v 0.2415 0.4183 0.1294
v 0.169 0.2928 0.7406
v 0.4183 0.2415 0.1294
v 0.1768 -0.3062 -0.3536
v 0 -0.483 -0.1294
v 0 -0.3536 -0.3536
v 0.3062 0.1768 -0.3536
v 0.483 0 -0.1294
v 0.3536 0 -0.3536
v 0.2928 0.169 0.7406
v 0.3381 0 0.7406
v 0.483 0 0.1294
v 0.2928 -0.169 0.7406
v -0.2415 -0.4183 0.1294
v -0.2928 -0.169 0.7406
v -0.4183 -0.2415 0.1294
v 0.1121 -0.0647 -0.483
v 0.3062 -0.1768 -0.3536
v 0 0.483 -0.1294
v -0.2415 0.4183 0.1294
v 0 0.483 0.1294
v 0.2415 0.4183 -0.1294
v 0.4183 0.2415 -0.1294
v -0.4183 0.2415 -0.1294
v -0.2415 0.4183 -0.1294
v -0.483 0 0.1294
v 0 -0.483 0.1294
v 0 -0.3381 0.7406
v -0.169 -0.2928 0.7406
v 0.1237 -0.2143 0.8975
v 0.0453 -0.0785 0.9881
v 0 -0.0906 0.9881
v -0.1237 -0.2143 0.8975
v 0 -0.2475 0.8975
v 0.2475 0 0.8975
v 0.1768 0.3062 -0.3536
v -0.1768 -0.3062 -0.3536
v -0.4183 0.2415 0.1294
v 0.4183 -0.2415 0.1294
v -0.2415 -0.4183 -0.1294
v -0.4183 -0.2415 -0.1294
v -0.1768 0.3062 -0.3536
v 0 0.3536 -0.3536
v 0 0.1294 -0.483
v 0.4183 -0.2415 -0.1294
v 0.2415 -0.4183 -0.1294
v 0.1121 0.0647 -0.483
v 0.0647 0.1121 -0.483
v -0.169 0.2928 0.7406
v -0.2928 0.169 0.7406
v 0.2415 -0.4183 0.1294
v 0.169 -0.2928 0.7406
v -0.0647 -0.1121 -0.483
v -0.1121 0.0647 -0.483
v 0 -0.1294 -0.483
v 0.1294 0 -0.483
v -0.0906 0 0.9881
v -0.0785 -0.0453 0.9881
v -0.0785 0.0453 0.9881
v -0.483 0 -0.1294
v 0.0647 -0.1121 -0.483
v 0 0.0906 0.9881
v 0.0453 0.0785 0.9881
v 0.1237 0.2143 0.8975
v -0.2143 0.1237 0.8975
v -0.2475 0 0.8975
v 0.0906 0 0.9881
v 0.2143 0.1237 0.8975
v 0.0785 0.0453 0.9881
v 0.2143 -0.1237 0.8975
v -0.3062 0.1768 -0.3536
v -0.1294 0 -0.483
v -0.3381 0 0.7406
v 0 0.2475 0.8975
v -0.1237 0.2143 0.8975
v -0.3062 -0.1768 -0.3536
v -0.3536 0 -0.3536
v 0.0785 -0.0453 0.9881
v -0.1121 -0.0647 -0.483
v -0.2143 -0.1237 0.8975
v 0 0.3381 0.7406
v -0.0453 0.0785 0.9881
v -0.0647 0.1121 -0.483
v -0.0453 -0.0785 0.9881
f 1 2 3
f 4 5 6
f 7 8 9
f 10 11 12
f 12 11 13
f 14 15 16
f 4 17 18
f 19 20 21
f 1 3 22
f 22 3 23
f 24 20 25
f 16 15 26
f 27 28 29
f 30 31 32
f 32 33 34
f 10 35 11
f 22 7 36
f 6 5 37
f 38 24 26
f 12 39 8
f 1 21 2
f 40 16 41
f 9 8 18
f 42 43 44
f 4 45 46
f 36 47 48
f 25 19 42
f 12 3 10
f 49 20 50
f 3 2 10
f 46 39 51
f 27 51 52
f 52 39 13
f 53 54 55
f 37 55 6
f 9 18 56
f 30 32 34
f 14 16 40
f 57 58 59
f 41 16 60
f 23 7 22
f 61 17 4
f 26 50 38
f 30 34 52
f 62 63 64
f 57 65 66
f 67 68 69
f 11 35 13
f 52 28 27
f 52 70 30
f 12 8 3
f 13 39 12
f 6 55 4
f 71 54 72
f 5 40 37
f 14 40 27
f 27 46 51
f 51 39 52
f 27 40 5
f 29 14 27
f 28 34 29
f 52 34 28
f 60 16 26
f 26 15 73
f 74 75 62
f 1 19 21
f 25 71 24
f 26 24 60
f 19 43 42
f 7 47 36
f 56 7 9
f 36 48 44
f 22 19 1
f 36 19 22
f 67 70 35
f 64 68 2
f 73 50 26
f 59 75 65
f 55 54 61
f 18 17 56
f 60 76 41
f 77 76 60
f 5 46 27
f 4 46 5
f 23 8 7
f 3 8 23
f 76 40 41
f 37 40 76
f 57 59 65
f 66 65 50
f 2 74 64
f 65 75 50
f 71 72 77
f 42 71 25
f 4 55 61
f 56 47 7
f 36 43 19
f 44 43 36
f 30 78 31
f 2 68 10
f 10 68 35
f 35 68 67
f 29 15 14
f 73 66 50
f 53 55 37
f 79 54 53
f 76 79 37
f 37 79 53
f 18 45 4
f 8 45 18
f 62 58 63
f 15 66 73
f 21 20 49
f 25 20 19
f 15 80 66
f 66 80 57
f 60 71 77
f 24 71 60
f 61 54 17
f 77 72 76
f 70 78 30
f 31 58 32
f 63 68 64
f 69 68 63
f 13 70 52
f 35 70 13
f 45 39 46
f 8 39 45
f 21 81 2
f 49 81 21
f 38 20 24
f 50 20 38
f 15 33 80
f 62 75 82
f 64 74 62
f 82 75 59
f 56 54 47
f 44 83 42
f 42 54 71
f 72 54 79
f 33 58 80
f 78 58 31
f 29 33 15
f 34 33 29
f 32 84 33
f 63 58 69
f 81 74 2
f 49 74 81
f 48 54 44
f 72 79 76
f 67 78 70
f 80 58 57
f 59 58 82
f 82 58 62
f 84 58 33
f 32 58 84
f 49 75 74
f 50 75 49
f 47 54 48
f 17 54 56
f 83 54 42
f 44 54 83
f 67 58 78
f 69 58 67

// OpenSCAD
use <lib.scad>

hull($fn=12) {
	sphere(0.5);
	translate([0,0,0.65]) sphere(0.35);
}
